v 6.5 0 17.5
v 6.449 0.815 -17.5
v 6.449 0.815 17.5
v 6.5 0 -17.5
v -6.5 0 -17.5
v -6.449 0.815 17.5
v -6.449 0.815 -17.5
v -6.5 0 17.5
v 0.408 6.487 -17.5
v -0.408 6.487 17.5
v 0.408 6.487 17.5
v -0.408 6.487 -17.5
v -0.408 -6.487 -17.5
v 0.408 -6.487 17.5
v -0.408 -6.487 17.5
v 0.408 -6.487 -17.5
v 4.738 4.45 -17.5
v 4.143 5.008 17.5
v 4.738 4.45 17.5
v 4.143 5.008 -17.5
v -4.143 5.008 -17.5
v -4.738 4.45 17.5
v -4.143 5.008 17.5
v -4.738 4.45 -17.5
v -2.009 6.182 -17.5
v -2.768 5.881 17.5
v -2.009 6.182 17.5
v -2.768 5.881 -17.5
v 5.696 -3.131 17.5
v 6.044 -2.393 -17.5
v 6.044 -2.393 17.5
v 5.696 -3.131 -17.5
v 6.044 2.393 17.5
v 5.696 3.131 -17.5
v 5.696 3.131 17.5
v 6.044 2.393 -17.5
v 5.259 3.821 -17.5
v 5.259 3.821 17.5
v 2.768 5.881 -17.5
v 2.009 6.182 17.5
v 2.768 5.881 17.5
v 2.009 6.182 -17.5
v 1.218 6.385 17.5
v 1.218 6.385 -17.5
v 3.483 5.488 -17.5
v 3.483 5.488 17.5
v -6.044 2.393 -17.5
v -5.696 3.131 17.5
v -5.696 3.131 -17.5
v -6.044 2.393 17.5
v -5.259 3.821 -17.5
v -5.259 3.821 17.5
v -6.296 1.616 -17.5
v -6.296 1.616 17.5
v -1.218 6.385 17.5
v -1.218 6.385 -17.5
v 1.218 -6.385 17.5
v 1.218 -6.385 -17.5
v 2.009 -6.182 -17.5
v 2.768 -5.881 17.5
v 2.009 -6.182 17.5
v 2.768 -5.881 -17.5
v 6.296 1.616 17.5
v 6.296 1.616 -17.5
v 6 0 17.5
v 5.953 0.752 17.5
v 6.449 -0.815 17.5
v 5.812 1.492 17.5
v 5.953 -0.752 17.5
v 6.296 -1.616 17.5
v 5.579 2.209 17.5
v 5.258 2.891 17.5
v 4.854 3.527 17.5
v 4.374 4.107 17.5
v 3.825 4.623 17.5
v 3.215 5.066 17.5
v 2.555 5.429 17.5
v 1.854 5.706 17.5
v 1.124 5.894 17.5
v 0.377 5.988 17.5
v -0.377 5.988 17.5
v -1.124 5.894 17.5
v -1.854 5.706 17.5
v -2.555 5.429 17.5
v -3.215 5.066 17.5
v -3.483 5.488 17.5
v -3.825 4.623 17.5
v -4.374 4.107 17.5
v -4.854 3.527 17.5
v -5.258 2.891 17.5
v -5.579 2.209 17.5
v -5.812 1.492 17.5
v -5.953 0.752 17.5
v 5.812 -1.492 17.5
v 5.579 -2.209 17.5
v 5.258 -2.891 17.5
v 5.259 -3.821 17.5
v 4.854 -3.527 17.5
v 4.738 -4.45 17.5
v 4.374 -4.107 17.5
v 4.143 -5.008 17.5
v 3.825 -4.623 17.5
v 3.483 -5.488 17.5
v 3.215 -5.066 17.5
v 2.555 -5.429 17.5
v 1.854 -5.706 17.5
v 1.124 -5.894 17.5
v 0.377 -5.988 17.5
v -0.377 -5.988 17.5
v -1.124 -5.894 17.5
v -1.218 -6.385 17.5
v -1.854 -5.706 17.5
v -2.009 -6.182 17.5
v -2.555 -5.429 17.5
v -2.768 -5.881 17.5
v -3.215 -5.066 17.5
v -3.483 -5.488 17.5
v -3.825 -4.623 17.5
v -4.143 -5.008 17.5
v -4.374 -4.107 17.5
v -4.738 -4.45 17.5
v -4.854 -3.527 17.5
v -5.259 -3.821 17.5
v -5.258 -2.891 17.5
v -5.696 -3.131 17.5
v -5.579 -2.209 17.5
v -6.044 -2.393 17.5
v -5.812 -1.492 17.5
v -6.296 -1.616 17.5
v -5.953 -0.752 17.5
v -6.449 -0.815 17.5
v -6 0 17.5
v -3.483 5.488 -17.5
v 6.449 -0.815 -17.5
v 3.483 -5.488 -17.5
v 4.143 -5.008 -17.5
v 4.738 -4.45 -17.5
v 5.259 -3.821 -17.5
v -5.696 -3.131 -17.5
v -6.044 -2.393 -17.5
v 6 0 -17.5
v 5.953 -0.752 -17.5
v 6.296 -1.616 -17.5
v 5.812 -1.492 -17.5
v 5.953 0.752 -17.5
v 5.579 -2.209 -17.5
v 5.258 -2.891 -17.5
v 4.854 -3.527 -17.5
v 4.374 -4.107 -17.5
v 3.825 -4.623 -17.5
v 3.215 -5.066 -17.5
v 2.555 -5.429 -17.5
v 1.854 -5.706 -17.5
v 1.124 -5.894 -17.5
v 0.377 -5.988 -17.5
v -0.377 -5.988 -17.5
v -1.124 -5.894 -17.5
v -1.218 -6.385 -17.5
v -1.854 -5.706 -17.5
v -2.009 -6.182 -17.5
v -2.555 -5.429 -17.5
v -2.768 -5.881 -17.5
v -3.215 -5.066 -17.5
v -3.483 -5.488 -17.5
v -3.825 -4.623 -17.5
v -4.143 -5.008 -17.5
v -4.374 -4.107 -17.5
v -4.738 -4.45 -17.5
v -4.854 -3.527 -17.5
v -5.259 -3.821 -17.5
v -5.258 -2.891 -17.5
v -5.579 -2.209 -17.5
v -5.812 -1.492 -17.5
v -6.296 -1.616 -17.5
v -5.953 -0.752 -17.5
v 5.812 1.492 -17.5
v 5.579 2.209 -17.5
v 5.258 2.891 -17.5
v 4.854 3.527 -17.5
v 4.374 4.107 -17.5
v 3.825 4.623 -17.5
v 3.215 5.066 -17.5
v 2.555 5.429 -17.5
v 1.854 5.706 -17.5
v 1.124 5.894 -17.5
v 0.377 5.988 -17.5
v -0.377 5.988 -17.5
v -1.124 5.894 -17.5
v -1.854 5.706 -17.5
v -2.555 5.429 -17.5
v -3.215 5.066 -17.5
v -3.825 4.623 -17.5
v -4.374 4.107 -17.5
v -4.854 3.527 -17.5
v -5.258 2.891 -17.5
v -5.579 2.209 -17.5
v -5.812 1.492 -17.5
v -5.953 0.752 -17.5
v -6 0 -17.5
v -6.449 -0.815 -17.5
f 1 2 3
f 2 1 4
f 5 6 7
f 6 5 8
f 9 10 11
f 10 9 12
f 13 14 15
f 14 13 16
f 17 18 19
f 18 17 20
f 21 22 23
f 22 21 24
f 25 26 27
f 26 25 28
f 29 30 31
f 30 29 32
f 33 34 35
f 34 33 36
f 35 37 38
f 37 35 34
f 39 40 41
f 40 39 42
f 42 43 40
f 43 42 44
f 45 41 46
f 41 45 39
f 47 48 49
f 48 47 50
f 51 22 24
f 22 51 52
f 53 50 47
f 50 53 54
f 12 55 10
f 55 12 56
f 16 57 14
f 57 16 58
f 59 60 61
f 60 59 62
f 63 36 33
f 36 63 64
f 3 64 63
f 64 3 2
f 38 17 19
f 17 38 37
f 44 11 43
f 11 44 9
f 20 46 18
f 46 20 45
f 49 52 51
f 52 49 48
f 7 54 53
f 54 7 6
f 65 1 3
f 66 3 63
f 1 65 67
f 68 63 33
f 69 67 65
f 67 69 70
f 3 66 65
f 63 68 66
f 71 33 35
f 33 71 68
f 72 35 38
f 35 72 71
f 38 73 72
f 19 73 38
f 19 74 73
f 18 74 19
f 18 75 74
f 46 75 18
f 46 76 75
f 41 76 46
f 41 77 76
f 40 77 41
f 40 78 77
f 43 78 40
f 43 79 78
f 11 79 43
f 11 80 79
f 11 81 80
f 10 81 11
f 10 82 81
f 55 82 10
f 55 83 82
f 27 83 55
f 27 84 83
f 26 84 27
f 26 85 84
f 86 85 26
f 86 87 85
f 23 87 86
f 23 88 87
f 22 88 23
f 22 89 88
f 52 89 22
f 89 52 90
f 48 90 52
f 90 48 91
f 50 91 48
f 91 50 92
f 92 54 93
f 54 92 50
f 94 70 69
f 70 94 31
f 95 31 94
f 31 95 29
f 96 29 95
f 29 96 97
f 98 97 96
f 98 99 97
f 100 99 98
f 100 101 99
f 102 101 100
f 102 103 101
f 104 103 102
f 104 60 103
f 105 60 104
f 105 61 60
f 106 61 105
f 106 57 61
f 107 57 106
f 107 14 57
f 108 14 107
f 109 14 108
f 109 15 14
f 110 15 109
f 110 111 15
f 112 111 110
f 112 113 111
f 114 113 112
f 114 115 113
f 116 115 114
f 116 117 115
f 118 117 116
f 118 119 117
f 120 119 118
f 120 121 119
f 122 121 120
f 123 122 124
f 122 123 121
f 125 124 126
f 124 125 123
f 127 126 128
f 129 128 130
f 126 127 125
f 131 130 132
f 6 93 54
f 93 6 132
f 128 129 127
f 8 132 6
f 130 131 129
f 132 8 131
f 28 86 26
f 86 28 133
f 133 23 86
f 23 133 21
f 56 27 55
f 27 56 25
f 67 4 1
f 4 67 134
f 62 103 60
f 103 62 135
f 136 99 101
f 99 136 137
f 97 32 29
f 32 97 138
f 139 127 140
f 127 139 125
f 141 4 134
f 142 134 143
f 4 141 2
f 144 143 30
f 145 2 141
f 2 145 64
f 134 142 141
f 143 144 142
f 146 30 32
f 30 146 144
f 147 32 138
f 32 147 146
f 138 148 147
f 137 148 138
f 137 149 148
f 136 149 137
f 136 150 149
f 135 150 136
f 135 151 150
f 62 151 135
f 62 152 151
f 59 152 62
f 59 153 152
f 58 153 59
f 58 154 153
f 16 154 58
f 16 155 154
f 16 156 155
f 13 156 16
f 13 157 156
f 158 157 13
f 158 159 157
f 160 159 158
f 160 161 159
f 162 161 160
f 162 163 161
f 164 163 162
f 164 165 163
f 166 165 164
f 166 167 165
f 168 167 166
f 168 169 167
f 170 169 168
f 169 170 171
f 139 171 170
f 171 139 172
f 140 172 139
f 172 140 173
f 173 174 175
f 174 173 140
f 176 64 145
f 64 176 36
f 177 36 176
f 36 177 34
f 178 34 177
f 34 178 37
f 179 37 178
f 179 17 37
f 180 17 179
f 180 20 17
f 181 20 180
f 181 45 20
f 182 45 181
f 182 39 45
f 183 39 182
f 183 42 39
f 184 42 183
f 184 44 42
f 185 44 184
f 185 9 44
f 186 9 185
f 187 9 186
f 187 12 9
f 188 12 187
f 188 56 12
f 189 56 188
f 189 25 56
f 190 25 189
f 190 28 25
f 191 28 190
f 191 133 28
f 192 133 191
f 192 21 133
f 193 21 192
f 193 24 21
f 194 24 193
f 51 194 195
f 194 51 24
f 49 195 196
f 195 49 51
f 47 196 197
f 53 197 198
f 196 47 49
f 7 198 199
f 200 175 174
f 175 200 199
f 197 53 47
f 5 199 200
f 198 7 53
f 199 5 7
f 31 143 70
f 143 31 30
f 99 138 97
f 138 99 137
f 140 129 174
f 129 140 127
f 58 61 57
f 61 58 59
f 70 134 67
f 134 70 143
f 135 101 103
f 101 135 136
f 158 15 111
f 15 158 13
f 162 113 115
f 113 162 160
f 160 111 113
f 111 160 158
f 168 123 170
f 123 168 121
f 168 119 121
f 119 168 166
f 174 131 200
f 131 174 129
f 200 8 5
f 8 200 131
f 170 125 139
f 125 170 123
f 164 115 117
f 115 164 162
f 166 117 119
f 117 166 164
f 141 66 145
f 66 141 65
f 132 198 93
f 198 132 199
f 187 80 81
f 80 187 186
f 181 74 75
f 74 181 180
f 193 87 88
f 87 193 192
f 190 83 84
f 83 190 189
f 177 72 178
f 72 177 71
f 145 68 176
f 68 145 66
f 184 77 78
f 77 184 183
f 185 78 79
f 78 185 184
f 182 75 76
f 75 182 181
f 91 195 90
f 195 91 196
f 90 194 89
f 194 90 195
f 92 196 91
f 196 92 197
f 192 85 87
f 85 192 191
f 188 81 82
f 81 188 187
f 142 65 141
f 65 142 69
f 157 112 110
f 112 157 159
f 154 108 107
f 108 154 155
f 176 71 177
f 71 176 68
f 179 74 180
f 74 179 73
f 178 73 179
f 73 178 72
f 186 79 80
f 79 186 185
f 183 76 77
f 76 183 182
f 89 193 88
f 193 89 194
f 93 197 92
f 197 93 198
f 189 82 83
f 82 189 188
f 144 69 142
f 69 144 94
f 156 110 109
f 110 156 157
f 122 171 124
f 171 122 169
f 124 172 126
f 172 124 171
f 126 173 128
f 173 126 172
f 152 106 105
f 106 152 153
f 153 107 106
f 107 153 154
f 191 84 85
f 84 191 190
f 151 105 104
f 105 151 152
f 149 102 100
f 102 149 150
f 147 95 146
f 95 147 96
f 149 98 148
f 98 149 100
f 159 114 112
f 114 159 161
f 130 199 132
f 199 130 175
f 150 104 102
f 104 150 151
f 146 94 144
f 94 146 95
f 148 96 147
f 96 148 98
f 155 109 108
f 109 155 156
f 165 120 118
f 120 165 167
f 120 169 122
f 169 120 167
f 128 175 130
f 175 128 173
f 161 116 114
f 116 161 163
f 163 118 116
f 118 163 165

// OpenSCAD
$fn = 50;


difference() {
	union() {
		translate(v = [0, 0, -17.5000000000]) {
			cylinder(h = 35, r = 6.5000000000);
		}
	}
	union() {
		translate(v = [0, 0, -100.0000000000]) {
			cylinder(h = 200, r = 6);
		}
	}
}
